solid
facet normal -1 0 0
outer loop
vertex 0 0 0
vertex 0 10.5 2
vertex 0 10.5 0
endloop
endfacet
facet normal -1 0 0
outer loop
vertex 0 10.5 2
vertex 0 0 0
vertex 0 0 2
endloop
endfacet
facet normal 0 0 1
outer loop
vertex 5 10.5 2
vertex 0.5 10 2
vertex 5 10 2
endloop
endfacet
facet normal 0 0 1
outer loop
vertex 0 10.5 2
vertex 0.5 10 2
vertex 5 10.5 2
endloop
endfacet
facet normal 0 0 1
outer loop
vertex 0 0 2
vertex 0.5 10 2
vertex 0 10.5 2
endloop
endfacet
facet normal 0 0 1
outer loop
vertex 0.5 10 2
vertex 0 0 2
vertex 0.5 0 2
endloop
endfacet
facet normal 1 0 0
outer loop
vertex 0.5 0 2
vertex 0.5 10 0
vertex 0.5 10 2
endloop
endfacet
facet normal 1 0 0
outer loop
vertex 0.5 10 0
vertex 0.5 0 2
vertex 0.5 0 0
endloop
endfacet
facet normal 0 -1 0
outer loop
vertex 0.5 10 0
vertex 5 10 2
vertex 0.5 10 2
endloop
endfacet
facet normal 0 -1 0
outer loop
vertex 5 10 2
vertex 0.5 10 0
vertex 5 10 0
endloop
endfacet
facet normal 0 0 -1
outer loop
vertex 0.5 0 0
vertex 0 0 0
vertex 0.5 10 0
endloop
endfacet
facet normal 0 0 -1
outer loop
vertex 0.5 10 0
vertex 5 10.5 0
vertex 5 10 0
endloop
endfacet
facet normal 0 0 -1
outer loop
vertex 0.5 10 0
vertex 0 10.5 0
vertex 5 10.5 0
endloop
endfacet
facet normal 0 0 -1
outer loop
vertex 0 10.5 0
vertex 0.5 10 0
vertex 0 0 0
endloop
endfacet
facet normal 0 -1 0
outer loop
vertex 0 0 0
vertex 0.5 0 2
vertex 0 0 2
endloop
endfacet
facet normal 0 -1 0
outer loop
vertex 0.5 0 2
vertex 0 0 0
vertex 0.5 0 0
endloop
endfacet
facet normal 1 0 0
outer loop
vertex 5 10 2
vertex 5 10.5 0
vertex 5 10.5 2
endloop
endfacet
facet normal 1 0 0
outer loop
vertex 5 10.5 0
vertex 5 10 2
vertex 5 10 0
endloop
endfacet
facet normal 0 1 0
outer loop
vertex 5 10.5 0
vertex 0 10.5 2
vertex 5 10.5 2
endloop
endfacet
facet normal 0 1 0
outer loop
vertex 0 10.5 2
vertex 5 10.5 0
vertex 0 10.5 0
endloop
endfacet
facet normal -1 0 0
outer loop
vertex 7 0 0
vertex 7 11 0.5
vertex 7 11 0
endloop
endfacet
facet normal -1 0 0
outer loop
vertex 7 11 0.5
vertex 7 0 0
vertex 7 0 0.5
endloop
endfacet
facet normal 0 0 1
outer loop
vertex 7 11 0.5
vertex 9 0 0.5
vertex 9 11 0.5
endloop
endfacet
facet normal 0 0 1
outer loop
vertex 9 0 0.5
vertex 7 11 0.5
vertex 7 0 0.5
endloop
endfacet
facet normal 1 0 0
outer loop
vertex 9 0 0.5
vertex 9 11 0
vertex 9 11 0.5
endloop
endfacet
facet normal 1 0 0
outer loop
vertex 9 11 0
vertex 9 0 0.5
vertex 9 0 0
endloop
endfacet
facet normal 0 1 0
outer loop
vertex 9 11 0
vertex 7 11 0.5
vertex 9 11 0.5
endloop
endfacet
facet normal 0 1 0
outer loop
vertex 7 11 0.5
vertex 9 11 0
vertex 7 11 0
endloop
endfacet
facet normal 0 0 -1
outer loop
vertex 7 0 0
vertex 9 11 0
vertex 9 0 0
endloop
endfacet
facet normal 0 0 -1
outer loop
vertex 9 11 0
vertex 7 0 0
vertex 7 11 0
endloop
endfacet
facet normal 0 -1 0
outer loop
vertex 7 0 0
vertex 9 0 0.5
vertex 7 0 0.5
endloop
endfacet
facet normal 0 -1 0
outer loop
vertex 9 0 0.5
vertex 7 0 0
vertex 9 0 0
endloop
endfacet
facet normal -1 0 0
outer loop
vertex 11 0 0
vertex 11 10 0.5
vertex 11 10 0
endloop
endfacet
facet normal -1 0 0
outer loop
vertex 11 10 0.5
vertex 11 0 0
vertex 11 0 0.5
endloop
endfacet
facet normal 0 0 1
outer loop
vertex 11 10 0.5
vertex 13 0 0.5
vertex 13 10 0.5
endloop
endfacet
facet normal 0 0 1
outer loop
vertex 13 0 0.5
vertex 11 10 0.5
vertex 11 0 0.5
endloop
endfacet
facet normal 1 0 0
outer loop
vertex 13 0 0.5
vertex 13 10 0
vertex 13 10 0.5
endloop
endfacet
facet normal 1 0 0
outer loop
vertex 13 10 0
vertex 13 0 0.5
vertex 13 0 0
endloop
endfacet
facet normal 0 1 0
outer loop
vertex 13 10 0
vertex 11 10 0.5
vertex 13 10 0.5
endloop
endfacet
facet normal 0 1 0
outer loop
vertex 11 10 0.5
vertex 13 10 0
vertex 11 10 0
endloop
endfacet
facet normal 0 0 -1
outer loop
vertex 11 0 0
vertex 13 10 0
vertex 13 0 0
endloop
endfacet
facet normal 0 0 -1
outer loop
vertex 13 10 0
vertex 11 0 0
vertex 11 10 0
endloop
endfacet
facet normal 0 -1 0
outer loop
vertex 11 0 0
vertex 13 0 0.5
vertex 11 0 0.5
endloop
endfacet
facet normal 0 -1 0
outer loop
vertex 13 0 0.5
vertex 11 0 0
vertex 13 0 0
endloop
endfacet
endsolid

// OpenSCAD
union() {
	union() {
		union() {
			cube(size = [0.5000000000, 10, 2]);
			translate(v = [0, 10, 0]) {
				cube(size = [5, 0.5000000000, 2]);
			}
		}
		translate(v = [7, 0, 0]) {
			cube(size = [2, 11, 0.5000000000]);
		}
	}
	translate(v = [11, 0, 0]) {
		cube(size = [2, 10, 0.5000000000]);
	}
}
/***********************************************
*********      SolidPython code:      **********
************************************************
 
import subprocess
# Numpy-stl
from stl import mesh
from mpl_toolkits import mplot3d
from matplotlib import pyplot
# SolidPython
from solid import *
from solid.utils import *


## Conversts a scad object to a SCAD file and then to a STL file
def save_to_stl (scad_obj, output_name):

	scad_output_name = output_name + ".scad"
	stl_output_name = output_name + ".stl"

	scad_render_to_file(scad_obj, scad_output_name)

	args = ["openscad", "-o", stl_output_name, "-D", 'quality="production"', scad_output_name];

	try:
		subprocess.check_call(args)
	except subprocess.CalledProcessError as e:
		print "Could not convert SCAD to STL"

	return

## Plots a 3D representation of a stl file name using matlibplot
def plot_stl (input_name):
	stl_input_name = input_name + ".stl"

	# Create a new plot
	figure = pyplot.figure()
	axes = mplot3d.Axes3D(figure)

	# Load the STL files and add the vectors to the plot
	file_mesh = mesh.Mesh.from_file(stl_input_name)
	axes.add_collection3d(mplot3d.art3d.Poly3DCollection(file_mesh.vectors))

	# Auto scale to the mesh size
	scale = file_mesh.points.flatten(-1)
	axes.auto_scale_xyz(scale, scale, scale)

	# Show the plot to the screen
	pyplot.show()


tick = 0.5
width = 2
base_length = 10
bLen = 5
humerus_length = 11
humerus_off = (bLen + width)
ulna_length = 10
ulna_off = (humerus_off + (width*2))

base = cube([tick, base_length, width]) + translate([0,base_length,0])(cube([bLen,tick,width]))

humerus = translate([humerus_off,0,0])(cube([width,humerus_length,tick]))

ulna = translate([ulna_off,0,0])(cube([width,ulna_length,tick]))

scad_obj = base + humerus + ulna


save_to_stl (scad_obj, "my_stl")
# plot_stl ("my_stl")




 
 
************************************************/
